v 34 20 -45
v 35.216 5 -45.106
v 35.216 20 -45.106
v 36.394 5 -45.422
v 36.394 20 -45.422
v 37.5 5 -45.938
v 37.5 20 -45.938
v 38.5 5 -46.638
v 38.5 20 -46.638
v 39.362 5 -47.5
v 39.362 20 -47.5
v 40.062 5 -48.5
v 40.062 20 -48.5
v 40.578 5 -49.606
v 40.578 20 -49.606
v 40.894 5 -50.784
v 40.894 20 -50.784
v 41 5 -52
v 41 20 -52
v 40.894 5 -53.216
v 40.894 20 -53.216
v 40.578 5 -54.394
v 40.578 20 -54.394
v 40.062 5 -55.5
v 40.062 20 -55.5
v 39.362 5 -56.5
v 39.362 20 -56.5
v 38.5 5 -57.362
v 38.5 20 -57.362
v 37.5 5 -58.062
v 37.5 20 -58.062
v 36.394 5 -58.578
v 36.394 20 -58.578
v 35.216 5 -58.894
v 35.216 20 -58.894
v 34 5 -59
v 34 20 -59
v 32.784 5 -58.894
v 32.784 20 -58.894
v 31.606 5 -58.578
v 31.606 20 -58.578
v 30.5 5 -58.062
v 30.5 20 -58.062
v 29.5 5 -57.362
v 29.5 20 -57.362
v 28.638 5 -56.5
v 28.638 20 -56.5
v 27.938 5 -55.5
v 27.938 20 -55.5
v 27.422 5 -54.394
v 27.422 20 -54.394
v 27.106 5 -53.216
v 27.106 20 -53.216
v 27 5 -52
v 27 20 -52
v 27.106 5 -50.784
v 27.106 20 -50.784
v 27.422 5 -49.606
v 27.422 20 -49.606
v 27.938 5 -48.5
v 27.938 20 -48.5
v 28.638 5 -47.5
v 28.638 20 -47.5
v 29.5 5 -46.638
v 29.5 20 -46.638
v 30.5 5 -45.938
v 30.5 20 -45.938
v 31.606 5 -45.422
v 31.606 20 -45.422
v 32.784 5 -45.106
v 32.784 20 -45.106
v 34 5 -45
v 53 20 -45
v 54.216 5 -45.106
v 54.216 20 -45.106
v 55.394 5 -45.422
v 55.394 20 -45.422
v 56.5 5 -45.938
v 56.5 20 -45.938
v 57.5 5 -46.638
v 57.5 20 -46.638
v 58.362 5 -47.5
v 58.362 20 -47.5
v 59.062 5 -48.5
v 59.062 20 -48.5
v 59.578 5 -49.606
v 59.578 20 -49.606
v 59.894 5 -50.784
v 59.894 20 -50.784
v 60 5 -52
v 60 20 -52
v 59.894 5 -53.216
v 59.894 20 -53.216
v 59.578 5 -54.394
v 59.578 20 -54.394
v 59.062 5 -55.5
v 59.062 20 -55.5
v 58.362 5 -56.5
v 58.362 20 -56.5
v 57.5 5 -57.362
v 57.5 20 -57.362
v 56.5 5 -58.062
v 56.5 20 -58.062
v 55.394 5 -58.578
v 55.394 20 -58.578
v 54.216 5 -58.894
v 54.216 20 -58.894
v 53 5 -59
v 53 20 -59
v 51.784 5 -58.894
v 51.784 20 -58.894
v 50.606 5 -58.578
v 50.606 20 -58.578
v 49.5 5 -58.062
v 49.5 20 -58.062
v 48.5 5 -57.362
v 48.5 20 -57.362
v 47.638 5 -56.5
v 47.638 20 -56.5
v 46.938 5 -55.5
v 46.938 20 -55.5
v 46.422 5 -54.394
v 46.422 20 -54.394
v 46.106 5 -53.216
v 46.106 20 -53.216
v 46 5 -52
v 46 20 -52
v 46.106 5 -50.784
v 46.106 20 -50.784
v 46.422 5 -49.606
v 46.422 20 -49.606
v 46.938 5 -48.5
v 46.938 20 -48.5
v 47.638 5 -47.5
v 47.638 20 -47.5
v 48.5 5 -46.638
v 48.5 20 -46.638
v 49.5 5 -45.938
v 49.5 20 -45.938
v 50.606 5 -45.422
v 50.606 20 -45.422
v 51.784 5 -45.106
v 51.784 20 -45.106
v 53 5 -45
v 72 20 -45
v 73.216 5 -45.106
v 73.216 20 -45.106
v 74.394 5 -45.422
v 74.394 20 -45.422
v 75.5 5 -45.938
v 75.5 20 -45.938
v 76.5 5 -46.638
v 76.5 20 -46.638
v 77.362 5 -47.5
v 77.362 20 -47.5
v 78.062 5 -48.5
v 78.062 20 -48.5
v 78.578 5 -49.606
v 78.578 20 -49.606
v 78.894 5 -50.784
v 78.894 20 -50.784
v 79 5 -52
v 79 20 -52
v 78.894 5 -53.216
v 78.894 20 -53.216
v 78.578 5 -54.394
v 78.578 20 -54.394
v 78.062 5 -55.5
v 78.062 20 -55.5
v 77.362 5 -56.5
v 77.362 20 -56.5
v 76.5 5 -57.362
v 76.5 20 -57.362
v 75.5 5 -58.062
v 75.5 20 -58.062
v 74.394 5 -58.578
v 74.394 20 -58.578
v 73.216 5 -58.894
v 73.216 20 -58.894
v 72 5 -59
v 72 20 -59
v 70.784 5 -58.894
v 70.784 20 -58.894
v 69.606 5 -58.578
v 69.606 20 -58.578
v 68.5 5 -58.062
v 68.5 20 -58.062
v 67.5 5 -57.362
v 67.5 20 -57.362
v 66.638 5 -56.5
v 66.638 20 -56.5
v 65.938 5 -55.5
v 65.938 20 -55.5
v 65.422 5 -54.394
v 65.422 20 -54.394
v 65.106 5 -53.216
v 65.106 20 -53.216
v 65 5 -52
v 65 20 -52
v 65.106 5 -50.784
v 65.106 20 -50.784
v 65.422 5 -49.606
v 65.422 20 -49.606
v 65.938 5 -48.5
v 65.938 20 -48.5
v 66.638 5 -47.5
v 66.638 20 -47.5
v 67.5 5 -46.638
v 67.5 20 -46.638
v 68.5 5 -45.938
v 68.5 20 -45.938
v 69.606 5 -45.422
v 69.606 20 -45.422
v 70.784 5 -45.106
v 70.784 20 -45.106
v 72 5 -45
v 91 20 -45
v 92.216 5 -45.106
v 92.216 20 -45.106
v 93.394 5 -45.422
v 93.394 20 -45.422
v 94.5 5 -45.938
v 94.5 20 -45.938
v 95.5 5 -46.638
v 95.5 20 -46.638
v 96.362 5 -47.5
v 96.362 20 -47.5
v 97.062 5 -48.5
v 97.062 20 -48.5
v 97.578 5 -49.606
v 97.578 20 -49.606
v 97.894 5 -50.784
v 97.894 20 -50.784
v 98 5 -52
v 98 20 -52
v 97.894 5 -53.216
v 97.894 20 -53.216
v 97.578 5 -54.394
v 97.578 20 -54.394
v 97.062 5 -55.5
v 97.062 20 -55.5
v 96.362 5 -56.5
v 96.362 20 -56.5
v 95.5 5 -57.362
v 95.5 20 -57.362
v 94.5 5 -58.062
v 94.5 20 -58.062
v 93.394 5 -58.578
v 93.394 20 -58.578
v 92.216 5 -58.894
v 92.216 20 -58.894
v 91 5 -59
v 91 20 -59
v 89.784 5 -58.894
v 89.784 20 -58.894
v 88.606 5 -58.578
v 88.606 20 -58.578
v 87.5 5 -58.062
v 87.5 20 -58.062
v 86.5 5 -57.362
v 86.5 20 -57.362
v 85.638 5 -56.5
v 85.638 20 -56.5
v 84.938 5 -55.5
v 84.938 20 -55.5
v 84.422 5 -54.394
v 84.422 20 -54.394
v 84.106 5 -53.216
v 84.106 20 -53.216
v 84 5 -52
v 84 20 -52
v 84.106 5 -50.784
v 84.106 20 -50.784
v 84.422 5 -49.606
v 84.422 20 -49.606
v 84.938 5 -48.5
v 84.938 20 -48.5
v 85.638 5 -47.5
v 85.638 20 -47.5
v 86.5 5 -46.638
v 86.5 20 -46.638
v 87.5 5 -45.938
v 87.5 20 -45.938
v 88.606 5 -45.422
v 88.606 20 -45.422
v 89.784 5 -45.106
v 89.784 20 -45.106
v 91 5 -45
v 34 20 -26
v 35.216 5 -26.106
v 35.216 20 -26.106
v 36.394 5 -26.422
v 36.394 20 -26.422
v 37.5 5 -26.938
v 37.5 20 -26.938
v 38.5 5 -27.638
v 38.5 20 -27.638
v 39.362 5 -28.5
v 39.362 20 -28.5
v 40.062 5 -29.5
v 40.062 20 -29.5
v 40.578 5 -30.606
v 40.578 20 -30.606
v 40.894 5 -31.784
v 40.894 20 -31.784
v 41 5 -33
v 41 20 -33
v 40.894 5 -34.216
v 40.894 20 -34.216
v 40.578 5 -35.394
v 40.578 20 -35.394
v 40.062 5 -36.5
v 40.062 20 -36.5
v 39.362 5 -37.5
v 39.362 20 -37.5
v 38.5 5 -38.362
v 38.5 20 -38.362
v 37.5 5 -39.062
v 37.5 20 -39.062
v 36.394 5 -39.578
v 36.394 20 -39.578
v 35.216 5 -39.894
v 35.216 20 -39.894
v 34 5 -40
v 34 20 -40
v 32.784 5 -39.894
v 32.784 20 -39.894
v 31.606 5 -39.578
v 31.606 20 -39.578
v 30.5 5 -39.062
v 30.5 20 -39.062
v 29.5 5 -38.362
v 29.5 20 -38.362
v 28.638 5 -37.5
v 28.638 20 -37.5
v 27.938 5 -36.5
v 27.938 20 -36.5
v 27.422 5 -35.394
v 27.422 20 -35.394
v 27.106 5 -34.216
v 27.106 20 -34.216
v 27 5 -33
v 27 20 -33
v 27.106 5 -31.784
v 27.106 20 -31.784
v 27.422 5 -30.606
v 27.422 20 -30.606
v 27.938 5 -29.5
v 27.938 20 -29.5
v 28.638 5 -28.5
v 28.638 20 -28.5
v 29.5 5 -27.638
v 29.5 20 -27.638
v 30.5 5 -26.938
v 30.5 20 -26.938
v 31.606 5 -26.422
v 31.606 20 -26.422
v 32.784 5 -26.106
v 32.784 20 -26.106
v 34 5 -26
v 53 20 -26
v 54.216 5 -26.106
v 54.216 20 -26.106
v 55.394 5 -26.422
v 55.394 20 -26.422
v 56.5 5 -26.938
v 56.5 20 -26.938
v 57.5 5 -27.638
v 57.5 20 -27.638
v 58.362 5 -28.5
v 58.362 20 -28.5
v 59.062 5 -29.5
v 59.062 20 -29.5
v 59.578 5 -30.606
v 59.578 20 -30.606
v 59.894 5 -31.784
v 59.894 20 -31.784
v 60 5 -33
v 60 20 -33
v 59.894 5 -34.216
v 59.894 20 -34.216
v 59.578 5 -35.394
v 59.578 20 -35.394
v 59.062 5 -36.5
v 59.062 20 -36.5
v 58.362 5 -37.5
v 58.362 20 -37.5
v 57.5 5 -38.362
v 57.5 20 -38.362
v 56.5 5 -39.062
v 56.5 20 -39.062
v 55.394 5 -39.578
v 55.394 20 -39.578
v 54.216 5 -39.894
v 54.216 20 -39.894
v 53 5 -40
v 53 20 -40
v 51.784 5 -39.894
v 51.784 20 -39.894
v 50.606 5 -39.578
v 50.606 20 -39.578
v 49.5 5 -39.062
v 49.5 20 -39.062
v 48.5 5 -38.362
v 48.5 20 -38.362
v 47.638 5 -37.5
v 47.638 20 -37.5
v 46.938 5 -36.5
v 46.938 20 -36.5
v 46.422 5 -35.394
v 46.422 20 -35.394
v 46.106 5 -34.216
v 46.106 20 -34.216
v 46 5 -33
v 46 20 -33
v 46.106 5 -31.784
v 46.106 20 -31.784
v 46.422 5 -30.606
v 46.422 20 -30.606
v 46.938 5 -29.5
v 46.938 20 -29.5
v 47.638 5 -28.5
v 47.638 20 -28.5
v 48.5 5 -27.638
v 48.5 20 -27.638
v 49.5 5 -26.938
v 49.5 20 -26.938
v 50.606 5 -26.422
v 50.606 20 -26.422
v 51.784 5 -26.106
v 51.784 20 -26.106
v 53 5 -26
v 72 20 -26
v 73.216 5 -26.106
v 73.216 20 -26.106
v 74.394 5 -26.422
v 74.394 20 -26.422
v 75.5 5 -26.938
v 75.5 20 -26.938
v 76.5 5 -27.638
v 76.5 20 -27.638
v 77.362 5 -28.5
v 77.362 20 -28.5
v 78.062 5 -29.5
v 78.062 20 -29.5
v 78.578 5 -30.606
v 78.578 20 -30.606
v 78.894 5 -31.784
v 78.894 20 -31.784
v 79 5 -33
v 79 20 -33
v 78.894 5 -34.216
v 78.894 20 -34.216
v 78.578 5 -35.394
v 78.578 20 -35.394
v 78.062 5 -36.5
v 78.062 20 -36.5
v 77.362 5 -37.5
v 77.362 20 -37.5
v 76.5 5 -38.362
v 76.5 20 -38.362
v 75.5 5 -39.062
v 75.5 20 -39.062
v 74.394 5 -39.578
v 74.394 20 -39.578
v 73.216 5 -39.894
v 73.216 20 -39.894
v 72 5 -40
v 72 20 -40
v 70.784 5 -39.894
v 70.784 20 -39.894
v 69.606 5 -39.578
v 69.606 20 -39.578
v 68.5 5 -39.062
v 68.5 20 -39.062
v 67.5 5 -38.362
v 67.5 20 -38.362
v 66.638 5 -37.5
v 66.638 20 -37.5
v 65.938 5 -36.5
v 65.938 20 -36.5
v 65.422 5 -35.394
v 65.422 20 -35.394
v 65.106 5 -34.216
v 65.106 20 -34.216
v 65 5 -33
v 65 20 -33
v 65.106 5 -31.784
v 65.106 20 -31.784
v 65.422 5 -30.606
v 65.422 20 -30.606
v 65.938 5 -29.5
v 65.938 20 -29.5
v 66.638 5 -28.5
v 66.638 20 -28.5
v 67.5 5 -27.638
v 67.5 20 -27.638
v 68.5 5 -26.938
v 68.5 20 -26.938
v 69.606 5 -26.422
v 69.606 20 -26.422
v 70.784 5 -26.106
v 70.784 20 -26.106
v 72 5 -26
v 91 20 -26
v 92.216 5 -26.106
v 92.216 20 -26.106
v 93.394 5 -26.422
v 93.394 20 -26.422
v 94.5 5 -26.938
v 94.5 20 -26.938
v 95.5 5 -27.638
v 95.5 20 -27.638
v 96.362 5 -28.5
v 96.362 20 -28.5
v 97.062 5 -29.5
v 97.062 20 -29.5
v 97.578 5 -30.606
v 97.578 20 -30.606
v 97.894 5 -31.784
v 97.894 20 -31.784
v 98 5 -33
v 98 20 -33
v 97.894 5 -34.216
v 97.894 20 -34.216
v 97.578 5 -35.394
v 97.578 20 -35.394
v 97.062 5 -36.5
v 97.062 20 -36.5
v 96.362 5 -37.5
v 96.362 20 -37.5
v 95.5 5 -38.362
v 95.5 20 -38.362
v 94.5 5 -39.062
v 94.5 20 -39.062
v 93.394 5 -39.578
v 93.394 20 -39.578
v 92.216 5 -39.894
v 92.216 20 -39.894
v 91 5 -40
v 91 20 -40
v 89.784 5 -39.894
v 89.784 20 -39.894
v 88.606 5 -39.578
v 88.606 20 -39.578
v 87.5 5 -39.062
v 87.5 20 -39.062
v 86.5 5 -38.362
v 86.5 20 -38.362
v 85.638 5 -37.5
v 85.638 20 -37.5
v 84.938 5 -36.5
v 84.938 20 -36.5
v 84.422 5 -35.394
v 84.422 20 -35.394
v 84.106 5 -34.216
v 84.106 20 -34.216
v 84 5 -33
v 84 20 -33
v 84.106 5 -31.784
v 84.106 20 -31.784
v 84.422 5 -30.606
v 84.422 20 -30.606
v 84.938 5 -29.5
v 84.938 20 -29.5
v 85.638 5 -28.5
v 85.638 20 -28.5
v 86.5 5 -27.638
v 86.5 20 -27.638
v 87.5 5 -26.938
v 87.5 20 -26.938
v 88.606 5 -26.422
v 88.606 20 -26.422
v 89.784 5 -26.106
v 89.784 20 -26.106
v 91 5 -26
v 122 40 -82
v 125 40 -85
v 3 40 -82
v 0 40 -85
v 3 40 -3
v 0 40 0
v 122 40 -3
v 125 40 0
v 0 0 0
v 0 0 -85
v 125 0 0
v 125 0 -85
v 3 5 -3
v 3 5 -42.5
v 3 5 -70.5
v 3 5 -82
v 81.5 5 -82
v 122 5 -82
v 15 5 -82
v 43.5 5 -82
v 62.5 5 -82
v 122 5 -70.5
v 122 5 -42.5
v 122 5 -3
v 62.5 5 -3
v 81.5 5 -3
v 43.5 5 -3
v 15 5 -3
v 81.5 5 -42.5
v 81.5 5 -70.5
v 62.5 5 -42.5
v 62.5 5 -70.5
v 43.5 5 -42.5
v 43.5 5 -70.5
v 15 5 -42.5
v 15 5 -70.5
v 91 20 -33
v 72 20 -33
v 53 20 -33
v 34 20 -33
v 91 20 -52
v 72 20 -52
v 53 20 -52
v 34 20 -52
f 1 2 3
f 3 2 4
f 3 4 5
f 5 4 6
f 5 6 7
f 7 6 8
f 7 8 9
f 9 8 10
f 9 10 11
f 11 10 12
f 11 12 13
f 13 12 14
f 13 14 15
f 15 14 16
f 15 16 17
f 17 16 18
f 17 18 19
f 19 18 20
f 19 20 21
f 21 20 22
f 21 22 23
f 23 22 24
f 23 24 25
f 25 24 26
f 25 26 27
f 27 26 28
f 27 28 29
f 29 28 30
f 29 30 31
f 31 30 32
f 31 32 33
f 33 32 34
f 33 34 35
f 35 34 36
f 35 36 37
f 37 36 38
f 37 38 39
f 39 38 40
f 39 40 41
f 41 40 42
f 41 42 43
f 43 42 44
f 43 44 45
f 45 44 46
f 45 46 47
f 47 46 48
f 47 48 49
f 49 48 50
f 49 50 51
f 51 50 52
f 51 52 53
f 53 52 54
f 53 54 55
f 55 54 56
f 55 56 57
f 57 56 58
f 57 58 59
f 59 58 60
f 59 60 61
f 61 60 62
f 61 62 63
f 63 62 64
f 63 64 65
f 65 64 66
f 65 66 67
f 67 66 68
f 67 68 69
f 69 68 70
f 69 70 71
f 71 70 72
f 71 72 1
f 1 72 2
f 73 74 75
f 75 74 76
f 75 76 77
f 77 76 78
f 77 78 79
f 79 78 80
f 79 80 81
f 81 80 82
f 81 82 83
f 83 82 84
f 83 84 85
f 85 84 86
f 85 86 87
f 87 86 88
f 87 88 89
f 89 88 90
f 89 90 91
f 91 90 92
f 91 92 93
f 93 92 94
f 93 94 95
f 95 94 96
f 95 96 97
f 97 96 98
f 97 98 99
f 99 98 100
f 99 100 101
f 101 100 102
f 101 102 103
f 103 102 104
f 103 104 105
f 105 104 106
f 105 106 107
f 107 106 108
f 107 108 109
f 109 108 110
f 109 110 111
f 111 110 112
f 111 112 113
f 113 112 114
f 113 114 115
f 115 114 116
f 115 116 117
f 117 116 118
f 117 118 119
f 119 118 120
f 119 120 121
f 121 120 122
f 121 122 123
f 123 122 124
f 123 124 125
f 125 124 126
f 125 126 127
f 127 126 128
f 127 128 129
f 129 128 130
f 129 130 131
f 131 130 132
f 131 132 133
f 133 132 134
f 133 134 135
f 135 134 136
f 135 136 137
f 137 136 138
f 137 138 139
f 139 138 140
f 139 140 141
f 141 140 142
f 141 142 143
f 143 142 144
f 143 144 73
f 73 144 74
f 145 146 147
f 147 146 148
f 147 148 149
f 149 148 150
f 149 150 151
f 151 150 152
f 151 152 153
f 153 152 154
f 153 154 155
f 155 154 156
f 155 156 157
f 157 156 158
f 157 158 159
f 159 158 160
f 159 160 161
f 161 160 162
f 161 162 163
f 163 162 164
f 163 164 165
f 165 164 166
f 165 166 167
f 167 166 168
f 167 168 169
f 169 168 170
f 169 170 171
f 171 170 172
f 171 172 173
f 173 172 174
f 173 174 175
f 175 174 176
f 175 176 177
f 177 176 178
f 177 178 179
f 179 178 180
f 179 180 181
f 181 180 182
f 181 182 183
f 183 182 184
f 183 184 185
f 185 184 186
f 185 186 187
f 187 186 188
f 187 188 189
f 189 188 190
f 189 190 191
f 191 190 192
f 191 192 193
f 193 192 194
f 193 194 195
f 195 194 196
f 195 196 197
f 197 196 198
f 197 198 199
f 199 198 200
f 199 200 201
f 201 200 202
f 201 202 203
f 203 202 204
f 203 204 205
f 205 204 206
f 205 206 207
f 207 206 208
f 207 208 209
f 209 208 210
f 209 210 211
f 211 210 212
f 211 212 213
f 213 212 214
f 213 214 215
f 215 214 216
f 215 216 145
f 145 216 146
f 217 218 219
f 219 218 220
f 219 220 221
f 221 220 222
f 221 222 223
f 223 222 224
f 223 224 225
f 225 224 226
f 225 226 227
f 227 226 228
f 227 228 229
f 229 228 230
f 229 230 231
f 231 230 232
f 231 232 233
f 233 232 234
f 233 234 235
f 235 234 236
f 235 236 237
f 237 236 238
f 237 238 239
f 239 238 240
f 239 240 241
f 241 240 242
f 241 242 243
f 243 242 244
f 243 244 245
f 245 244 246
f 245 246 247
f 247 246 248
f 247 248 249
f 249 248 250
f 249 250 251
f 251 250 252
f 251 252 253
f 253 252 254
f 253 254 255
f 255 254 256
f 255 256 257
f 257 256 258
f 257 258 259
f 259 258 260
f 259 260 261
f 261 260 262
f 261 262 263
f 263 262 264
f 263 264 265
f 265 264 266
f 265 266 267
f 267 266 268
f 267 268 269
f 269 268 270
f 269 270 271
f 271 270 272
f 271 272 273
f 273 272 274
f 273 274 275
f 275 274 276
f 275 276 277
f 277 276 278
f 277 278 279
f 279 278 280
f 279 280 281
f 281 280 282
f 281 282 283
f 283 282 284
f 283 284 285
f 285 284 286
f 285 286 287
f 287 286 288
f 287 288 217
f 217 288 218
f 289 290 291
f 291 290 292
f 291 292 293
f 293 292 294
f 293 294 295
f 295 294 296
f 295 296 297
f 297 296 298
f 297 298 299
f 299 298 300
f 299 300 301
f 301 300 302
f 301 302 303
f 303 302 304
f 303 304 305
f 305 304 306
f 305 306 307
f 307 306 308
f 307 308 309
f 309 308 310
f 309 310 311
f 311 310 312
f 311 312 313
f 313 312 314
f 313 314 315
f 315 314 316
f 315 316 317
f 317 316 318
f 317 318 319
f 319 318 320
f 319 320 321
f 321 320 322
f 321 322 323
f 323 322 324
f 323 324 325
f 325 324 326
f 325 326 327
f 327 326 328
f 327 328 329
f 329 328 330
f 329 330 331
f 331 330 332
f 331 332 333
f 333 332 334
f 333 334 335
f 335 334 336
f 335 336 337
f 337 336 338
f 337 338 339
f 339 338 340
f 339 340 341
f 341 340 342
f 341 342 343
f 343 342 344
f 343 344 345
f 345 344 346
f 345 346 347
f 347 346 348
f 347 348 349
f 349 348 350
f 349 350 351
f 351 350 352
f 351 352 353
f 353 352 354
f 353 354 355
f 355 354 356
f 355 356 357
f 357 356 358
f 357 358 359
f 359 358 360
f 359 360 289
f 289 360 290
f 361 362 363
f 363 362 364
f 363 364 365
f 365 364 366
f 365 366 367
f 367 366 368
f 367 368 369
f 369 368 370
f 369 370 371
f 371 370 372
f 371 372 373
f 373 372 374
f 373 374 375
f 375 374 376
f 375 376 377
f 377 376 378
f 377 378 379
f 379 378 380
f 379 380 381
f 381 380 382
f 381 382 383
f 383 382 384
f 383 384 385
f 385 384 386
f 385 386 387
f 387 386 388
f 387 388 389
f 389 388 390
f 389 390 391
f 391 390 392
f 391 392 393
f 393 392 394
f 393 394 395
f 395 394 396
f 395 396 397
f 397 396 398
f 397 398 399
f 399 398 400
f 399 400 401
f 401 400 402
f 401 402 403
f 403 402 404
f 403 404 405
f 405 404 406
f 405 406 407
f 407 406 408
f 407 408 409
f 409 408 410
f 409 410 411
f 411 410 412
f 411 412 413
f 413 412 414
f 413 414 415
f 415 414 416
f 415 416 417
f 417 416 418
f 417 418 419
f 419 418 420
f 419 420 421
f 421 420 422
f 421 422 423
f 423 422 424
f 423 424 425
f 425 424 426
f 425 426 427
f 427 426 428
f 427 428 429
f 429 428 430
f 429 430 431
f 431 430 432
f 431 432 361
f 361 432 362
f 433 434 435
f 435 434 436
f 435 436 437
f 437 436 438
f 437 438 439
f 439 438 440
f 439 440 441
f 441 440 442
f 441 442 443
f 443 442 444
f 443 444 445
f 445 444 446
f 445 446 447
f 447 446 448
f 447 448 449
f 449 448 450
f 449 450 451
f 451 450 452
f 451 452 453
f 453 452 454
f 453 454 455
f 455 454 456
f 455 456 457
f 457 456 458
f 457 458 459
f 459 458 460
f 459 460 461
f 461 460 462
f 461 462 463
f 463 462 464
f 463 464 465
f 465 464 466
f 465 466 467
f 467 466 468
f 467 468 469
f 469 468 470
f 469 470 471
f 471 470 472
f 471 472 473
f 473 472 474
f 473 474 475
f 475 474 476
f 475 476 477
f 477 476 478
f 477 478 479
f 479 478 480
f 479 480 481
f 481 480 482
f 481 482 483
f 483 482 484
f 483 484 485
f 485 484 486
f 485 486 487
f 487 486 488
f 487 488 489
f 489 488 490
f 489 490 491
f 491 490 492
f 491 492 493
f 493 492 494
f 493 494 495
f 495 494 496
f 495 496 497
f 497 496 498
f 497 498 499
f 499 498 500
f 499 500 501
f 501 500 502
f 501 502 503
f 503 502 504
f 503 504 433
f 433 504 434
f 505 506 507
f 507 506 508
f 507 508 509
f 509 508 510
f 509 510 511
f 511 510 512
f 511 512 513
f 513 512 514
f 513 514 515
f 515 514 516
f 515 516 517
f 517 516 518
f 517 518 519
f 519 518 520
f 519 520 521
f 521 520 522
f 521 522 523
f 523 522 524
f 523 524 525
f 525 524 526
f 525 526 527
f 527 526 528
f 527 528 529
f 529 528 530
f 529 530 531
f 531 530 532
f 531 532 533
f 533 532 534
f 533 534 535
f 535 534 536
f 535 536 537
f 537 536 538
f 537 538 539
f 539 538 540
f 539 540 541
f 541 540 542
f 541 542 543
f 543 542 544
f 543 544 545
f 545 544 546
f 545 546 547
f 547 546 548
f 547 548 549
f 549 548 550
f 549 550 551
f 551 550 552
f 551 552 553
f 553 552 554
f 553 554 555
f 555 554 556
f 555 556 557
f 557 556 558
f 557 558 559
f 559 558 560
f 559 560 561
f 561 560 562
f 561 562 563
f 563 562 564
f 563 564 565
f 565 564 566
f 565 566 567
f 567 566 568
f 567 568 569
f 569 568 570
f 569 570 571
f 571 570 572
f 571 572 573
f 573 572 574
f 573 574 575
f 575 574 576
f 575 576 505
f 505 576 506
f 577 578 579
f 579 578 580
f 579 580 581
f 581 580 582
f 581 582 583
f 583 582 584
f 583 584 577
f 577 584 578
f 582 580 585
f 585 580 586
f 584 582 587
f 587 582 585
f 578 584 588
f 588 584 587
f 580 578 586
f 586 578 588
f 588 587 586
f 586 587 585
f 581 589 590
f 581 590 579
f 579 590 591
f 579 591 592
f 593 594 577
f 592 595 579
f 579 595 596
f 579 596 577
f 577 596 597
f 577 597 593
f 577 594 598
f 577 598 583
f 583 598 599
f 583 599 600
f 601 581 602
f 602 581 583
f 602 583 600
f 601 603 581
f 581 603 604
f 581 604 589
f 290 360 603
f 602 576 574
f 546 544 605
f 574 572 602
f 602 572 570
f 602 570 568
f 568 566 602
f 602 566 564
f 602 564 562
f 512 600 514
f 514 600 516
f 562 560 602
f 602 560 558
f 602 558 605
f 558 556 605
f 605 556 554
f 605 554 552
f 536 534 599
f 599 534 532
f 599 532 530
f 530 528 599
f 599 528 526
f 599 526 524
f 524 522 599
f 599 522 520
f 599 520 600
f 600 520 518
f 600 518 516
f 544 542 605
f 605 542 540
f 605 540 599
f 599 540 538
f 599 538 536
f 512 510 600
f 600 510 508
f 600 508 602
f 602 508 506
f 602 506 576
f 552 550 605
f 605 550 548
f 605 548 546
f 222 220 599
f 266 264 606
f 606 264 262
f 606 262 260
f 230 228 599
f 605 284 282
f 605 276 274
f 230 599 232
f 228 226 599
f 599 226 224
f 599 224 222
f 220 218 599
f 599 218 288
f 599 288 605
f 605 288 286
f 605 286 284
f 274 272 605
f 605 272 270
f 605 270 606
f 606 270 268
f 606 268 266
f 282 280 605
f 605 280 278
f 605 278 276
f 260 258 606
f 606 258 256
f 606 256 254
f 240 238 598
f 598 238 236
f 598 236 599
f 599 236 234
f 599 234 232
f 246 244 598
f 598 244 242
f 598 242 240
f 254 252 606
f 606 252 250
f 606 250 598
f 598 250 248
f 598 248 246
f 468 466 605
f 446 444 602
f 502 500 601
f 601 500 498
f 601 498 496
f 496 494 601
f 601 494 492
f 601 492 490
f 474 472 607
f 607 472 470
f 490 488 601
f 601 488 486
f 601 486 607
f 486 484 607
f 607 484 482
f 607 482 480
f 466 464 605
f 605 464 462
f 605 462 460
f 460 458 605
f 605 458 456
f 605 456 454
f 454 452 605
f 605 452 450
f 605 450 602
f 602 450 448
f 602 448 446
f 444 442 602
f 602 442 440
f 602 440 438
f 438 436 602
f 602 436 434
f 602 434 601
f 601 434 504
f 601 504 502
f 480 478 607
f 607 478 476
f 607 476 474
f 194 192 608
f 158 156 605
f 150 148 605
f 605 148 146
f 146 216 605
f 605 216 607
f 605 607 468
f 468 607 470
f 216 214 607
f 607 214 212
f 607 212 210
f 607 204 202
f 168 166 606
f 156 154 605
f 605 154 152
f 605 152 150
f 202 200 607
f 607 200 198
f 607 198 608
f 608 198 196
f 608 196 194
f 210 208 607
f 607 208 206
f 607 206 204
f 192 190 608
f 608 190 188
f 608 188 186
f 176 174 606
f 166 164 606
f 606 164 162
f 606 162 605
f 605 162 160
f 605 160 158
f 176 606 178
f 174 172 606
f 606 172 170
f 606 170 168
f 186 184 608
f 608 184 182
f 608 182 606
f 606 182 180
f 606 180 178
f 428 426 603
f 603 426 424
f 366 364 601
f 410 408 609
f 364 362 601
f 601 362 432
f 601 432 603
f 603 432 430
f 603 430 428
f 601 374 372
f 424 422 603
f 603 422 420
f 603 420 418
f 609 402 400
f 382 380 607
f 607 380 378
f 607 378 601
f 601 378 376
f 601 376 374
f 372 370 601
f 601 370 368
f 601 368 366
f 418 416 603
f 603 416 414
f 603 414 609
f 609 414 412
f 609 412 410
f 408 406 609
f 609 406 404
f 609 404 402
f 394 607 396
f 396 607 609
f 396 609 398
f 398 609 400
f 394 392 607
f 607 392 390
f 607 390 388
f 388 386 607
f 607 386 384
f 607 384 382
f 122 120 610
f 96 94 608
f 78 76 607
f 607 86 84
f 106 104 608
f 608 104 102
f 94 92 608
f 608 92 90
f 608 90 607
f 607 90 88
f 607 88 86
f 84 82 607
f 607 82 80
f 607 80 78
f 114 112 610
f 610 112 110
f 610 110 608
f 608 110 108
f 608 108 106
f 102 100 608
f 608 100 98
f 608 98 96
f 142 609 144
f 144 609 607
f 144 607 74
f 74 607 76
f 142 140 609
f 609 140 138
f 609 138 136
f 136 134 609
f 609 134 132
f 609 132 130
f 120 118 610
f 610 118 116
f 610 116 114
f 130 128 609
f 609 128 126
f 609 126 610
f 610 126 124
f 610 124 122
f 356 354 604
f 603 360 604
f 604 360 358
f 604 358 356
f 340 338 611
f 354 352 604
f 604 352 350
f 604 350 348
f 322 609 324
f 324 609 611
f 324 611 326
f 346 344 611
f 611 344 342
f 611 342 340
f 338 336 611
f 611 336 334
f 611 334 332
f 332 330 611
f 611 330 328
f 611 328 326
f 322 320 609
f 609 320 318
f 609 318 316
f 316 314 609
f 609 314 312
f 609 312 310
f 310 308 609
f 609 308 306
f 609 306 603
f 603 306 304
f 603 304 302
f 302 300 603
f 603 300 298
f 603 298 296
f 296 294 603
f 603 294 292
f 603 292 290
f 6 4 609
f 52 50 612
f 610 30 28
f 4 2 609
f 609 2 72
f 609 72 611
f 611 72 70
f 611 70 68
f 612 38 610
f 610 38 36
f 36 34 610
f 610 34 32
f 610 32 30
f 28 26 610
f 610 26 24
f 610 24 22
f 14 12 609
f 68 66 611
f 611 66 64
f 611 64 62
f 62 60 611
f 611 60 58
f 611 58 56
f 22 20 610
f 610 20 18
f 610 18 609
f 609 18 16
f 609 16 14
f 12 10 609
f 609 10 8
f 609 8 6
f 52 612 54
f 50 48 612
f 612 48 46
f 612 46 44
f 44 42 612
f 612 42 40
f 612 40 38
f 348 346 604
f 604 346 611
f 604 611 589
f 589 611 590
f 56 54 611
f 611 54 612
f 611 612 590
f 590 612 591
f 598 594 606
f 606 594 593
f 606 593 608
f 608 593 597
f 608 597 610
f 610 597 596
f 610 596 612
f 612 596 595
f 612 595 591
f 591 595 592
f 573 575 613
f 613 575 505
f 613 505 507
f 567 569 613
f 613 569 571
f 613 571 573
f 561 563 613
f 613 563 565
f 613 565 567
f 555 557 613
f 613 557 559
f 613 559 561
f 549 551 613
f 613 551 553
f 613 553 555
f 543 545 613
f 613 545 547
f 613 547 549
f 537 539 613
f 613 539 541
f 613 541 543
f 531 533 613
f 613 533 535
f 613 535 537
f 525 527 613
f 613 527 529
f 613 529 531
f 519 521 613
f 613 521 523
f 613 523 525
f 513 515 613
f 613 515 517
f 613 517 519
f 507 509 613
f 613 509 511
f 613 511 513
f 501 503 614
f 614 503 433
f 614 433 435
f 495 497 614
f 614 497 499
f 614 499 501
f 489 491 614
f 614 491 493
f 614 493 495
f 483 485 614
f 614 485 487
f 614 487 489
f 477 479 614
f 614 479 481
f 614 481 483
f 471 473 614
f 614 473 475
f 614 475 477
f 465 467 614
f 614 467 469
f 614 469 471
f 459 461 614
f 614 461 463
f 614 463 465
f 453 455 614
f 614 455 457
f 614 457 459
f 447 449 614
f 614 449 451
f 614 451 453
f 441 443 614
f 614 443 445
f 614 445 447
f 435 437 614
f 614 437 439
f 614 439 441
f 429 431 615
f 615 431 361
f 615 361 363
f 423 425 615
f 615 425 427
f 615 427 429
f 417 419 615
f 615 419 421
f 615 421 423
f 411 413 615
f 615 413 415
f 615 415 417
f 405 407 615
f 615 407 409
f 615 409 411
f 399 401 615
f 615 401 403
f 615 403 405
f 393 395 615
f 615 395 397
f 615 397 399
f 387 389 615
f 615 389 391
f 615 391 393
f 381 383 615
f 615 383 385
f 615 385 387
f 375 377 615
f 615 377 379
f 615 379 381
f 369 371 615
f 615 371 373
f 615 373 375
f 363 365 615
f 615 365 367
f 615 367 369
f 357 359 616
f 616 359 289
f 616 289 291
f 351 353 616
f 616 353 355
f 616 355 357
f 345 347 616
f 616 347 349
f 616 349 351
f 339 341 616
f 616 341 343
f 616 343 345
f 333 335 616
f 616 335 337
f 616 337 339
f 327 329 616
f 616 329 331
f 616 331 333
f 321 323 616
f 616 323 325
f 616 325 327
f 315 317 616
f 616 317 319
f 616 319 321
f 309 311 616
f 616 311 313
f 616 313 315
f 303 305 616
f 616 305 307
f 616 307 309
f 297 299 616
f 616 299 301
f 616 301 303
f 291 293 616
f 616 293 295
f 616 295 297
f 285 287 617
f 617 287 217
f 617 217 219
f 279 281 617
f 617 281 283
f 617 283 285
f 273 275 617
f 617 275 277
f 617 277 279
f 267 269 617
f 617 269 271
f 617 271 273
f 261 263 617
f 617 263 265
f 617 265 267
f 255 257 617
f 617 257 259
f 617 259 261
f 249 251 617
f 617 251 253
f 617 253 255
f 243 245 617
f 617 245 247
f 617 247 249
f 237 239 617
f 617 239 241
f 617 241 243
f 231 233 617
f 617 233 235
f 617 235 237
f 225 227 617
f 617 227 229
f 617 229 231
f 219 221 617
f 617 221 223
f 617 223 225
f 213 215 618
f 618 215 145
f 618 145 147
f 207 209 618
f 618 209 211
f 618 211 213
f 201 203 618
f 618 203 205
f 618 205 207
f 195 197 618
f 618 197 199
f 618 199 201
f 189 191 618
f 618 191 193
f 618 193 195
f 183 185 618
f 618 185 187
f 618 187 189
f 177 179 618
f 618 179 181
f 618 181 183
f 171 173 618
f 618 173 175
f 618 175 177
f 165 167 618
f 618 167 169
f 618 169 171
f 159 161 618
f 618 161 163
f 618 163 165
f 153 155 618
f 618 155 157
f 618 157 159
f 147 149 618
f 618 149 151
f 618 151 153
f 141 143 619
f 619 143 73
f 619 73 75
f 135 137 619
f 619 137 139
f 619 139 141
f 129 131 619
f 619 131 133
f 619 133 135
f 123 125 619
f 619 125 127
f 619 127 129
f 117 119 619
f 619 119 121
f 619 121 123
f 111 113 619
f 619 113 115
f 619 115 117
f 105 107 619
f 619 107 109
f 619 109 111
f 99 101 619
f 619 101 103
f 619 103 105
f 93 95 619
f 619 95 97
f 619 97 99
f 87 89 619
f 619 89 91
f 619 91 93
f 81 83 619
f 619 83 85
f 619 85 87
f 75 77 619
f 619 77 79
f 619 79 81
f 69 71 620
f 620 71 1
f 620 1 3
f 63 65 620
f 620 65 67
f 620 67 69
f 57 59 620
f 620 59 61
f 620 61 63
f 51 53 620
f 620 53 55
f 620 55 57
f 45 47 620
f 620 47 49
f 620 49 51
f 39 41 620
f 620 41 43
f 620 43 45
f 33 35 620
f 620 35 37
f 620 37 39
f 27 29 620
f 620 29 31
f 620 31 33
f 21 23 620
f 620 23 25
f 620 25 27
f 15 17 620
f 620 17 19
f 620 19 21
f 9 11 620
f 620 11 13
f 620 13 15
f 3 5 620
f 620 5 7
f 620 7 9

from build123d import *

# Parameters (mm, degrees)
SKETCH2_W            = 125
SKETCH2_H            = 85
CREATE_BEAM_DEPTH    = 40
SKETCH3_W            = 119
SKETCH3_H            = 79
SKETCH3_R            = 7
REMOVE_OUTSIDE_DEPTH = 35
SKETCH4_R            = 7
LOWER_PILLARS_DEPTH  = 20


with BuildPart() as part:
    # Sketch2 → Create Beam (new body)
    with BuildSketch(Plane(origin=(0, 0, 0), x_dir=(1, 0, 0), z_dir=(0, 1, 0))):
        with Locations((62.5, 42.5)):
            Rectangle(SKETCH2_W, SKETCH2_H)
    extrude(amount=CREATE_BEAM_DEPTH)

    # Sketch3 → Remove Outside (cut)
    with BuildSketch(Plane(origin=(0, 40, 0), x_dir=(1, 0, 0), z_dir=(0, 1, 0))):
        with Locations((62.5, 42.5)):
            Rectangle(SKETCH3_W, SKETCH3_H)
        with Locations(Location((91, 33, 0), (0, 0, 270))):
            Circle(SKETCH3_R, mode=Mode.SUBTRACT)
        with Locations(Location((72, 33, 0), (0, 0, 270))):
            Circle(SKETCH3_R, mode=Mode.SUBTRACT)
        with Locations(Location((53, 33, 0), (0, 0, 270))):
            Circle(SKETCH3_R, mode=Mode.SUBTRACT)
        with Locations(Location((34, 33, 0), (0, 0, 270))):
            Circle(SKETCH3_R, mode=Mode.SUBTRACT)
        with Locations(Location((91, 52, 0), (0, 0, 270))):
            Circle(SKETCH3_R, mode=Mode.SUBTRACT)
        with Locations(Location((72, 52, 0), (0, 0, 270))):
            Circle(SKETCH3_R, mode=Mode.SUBTRACT)
        with Locations(Location((53, 52, 0), (0, 0, 270))):
            Circle(SKETCH3_R, mode=Mode.SUBTRACT)
        with Locations(Location((34, 52, 0), (0, 0, 270))):
            Circle(SKETCH3_R, mode=Mode.SUBTRACT)
    extrude(amount=-REMOVE_OUTSIDE_DEPTH, mode=Mode.SUBTRACT)

    # Sketch4 → Lower Pillars (cut)
    with BuildSketch(Plane(origin=(0, 40, 0), x_dir=(1, 0, 0), z_dir=(0, 1, 0))):
        with Locations(Location((34, 33, 0), (0, 0, 270))):
            Circle(SKETCH4_R)
        with Locations(Location((53, 33, 0), (0, 0, 270))):
            Circle(SKETCH4_R)
        with Locations(Location((91, 33, 0), (0, 0, 270))):
            Circle(SKETCH4_R)
        with Locations(Location((72, 33, 0), (0, 0, 270))):
            Circle(SKETCH4_R)
        with Locations(Location((91, 52, 0), (0, 0, 270))):
            Circle(SKETCH4_R)
        with Locations(Location((72, 52, 0), (0, 0, 270))):
            Circle(SKETCH4_R)
        with Locations(Location((53, 52, 0), (0, 0, 270))):
            Circle(SKETCH4_R)
        with Locations(Location((34, 52, 0), (0, 0, 270))):
            Circle(SKETCH4_R)
    extrude(amount=-LOWER_PILLARS_DEPTH, mode=Mode.SUBTRACT)


solid = part.part
